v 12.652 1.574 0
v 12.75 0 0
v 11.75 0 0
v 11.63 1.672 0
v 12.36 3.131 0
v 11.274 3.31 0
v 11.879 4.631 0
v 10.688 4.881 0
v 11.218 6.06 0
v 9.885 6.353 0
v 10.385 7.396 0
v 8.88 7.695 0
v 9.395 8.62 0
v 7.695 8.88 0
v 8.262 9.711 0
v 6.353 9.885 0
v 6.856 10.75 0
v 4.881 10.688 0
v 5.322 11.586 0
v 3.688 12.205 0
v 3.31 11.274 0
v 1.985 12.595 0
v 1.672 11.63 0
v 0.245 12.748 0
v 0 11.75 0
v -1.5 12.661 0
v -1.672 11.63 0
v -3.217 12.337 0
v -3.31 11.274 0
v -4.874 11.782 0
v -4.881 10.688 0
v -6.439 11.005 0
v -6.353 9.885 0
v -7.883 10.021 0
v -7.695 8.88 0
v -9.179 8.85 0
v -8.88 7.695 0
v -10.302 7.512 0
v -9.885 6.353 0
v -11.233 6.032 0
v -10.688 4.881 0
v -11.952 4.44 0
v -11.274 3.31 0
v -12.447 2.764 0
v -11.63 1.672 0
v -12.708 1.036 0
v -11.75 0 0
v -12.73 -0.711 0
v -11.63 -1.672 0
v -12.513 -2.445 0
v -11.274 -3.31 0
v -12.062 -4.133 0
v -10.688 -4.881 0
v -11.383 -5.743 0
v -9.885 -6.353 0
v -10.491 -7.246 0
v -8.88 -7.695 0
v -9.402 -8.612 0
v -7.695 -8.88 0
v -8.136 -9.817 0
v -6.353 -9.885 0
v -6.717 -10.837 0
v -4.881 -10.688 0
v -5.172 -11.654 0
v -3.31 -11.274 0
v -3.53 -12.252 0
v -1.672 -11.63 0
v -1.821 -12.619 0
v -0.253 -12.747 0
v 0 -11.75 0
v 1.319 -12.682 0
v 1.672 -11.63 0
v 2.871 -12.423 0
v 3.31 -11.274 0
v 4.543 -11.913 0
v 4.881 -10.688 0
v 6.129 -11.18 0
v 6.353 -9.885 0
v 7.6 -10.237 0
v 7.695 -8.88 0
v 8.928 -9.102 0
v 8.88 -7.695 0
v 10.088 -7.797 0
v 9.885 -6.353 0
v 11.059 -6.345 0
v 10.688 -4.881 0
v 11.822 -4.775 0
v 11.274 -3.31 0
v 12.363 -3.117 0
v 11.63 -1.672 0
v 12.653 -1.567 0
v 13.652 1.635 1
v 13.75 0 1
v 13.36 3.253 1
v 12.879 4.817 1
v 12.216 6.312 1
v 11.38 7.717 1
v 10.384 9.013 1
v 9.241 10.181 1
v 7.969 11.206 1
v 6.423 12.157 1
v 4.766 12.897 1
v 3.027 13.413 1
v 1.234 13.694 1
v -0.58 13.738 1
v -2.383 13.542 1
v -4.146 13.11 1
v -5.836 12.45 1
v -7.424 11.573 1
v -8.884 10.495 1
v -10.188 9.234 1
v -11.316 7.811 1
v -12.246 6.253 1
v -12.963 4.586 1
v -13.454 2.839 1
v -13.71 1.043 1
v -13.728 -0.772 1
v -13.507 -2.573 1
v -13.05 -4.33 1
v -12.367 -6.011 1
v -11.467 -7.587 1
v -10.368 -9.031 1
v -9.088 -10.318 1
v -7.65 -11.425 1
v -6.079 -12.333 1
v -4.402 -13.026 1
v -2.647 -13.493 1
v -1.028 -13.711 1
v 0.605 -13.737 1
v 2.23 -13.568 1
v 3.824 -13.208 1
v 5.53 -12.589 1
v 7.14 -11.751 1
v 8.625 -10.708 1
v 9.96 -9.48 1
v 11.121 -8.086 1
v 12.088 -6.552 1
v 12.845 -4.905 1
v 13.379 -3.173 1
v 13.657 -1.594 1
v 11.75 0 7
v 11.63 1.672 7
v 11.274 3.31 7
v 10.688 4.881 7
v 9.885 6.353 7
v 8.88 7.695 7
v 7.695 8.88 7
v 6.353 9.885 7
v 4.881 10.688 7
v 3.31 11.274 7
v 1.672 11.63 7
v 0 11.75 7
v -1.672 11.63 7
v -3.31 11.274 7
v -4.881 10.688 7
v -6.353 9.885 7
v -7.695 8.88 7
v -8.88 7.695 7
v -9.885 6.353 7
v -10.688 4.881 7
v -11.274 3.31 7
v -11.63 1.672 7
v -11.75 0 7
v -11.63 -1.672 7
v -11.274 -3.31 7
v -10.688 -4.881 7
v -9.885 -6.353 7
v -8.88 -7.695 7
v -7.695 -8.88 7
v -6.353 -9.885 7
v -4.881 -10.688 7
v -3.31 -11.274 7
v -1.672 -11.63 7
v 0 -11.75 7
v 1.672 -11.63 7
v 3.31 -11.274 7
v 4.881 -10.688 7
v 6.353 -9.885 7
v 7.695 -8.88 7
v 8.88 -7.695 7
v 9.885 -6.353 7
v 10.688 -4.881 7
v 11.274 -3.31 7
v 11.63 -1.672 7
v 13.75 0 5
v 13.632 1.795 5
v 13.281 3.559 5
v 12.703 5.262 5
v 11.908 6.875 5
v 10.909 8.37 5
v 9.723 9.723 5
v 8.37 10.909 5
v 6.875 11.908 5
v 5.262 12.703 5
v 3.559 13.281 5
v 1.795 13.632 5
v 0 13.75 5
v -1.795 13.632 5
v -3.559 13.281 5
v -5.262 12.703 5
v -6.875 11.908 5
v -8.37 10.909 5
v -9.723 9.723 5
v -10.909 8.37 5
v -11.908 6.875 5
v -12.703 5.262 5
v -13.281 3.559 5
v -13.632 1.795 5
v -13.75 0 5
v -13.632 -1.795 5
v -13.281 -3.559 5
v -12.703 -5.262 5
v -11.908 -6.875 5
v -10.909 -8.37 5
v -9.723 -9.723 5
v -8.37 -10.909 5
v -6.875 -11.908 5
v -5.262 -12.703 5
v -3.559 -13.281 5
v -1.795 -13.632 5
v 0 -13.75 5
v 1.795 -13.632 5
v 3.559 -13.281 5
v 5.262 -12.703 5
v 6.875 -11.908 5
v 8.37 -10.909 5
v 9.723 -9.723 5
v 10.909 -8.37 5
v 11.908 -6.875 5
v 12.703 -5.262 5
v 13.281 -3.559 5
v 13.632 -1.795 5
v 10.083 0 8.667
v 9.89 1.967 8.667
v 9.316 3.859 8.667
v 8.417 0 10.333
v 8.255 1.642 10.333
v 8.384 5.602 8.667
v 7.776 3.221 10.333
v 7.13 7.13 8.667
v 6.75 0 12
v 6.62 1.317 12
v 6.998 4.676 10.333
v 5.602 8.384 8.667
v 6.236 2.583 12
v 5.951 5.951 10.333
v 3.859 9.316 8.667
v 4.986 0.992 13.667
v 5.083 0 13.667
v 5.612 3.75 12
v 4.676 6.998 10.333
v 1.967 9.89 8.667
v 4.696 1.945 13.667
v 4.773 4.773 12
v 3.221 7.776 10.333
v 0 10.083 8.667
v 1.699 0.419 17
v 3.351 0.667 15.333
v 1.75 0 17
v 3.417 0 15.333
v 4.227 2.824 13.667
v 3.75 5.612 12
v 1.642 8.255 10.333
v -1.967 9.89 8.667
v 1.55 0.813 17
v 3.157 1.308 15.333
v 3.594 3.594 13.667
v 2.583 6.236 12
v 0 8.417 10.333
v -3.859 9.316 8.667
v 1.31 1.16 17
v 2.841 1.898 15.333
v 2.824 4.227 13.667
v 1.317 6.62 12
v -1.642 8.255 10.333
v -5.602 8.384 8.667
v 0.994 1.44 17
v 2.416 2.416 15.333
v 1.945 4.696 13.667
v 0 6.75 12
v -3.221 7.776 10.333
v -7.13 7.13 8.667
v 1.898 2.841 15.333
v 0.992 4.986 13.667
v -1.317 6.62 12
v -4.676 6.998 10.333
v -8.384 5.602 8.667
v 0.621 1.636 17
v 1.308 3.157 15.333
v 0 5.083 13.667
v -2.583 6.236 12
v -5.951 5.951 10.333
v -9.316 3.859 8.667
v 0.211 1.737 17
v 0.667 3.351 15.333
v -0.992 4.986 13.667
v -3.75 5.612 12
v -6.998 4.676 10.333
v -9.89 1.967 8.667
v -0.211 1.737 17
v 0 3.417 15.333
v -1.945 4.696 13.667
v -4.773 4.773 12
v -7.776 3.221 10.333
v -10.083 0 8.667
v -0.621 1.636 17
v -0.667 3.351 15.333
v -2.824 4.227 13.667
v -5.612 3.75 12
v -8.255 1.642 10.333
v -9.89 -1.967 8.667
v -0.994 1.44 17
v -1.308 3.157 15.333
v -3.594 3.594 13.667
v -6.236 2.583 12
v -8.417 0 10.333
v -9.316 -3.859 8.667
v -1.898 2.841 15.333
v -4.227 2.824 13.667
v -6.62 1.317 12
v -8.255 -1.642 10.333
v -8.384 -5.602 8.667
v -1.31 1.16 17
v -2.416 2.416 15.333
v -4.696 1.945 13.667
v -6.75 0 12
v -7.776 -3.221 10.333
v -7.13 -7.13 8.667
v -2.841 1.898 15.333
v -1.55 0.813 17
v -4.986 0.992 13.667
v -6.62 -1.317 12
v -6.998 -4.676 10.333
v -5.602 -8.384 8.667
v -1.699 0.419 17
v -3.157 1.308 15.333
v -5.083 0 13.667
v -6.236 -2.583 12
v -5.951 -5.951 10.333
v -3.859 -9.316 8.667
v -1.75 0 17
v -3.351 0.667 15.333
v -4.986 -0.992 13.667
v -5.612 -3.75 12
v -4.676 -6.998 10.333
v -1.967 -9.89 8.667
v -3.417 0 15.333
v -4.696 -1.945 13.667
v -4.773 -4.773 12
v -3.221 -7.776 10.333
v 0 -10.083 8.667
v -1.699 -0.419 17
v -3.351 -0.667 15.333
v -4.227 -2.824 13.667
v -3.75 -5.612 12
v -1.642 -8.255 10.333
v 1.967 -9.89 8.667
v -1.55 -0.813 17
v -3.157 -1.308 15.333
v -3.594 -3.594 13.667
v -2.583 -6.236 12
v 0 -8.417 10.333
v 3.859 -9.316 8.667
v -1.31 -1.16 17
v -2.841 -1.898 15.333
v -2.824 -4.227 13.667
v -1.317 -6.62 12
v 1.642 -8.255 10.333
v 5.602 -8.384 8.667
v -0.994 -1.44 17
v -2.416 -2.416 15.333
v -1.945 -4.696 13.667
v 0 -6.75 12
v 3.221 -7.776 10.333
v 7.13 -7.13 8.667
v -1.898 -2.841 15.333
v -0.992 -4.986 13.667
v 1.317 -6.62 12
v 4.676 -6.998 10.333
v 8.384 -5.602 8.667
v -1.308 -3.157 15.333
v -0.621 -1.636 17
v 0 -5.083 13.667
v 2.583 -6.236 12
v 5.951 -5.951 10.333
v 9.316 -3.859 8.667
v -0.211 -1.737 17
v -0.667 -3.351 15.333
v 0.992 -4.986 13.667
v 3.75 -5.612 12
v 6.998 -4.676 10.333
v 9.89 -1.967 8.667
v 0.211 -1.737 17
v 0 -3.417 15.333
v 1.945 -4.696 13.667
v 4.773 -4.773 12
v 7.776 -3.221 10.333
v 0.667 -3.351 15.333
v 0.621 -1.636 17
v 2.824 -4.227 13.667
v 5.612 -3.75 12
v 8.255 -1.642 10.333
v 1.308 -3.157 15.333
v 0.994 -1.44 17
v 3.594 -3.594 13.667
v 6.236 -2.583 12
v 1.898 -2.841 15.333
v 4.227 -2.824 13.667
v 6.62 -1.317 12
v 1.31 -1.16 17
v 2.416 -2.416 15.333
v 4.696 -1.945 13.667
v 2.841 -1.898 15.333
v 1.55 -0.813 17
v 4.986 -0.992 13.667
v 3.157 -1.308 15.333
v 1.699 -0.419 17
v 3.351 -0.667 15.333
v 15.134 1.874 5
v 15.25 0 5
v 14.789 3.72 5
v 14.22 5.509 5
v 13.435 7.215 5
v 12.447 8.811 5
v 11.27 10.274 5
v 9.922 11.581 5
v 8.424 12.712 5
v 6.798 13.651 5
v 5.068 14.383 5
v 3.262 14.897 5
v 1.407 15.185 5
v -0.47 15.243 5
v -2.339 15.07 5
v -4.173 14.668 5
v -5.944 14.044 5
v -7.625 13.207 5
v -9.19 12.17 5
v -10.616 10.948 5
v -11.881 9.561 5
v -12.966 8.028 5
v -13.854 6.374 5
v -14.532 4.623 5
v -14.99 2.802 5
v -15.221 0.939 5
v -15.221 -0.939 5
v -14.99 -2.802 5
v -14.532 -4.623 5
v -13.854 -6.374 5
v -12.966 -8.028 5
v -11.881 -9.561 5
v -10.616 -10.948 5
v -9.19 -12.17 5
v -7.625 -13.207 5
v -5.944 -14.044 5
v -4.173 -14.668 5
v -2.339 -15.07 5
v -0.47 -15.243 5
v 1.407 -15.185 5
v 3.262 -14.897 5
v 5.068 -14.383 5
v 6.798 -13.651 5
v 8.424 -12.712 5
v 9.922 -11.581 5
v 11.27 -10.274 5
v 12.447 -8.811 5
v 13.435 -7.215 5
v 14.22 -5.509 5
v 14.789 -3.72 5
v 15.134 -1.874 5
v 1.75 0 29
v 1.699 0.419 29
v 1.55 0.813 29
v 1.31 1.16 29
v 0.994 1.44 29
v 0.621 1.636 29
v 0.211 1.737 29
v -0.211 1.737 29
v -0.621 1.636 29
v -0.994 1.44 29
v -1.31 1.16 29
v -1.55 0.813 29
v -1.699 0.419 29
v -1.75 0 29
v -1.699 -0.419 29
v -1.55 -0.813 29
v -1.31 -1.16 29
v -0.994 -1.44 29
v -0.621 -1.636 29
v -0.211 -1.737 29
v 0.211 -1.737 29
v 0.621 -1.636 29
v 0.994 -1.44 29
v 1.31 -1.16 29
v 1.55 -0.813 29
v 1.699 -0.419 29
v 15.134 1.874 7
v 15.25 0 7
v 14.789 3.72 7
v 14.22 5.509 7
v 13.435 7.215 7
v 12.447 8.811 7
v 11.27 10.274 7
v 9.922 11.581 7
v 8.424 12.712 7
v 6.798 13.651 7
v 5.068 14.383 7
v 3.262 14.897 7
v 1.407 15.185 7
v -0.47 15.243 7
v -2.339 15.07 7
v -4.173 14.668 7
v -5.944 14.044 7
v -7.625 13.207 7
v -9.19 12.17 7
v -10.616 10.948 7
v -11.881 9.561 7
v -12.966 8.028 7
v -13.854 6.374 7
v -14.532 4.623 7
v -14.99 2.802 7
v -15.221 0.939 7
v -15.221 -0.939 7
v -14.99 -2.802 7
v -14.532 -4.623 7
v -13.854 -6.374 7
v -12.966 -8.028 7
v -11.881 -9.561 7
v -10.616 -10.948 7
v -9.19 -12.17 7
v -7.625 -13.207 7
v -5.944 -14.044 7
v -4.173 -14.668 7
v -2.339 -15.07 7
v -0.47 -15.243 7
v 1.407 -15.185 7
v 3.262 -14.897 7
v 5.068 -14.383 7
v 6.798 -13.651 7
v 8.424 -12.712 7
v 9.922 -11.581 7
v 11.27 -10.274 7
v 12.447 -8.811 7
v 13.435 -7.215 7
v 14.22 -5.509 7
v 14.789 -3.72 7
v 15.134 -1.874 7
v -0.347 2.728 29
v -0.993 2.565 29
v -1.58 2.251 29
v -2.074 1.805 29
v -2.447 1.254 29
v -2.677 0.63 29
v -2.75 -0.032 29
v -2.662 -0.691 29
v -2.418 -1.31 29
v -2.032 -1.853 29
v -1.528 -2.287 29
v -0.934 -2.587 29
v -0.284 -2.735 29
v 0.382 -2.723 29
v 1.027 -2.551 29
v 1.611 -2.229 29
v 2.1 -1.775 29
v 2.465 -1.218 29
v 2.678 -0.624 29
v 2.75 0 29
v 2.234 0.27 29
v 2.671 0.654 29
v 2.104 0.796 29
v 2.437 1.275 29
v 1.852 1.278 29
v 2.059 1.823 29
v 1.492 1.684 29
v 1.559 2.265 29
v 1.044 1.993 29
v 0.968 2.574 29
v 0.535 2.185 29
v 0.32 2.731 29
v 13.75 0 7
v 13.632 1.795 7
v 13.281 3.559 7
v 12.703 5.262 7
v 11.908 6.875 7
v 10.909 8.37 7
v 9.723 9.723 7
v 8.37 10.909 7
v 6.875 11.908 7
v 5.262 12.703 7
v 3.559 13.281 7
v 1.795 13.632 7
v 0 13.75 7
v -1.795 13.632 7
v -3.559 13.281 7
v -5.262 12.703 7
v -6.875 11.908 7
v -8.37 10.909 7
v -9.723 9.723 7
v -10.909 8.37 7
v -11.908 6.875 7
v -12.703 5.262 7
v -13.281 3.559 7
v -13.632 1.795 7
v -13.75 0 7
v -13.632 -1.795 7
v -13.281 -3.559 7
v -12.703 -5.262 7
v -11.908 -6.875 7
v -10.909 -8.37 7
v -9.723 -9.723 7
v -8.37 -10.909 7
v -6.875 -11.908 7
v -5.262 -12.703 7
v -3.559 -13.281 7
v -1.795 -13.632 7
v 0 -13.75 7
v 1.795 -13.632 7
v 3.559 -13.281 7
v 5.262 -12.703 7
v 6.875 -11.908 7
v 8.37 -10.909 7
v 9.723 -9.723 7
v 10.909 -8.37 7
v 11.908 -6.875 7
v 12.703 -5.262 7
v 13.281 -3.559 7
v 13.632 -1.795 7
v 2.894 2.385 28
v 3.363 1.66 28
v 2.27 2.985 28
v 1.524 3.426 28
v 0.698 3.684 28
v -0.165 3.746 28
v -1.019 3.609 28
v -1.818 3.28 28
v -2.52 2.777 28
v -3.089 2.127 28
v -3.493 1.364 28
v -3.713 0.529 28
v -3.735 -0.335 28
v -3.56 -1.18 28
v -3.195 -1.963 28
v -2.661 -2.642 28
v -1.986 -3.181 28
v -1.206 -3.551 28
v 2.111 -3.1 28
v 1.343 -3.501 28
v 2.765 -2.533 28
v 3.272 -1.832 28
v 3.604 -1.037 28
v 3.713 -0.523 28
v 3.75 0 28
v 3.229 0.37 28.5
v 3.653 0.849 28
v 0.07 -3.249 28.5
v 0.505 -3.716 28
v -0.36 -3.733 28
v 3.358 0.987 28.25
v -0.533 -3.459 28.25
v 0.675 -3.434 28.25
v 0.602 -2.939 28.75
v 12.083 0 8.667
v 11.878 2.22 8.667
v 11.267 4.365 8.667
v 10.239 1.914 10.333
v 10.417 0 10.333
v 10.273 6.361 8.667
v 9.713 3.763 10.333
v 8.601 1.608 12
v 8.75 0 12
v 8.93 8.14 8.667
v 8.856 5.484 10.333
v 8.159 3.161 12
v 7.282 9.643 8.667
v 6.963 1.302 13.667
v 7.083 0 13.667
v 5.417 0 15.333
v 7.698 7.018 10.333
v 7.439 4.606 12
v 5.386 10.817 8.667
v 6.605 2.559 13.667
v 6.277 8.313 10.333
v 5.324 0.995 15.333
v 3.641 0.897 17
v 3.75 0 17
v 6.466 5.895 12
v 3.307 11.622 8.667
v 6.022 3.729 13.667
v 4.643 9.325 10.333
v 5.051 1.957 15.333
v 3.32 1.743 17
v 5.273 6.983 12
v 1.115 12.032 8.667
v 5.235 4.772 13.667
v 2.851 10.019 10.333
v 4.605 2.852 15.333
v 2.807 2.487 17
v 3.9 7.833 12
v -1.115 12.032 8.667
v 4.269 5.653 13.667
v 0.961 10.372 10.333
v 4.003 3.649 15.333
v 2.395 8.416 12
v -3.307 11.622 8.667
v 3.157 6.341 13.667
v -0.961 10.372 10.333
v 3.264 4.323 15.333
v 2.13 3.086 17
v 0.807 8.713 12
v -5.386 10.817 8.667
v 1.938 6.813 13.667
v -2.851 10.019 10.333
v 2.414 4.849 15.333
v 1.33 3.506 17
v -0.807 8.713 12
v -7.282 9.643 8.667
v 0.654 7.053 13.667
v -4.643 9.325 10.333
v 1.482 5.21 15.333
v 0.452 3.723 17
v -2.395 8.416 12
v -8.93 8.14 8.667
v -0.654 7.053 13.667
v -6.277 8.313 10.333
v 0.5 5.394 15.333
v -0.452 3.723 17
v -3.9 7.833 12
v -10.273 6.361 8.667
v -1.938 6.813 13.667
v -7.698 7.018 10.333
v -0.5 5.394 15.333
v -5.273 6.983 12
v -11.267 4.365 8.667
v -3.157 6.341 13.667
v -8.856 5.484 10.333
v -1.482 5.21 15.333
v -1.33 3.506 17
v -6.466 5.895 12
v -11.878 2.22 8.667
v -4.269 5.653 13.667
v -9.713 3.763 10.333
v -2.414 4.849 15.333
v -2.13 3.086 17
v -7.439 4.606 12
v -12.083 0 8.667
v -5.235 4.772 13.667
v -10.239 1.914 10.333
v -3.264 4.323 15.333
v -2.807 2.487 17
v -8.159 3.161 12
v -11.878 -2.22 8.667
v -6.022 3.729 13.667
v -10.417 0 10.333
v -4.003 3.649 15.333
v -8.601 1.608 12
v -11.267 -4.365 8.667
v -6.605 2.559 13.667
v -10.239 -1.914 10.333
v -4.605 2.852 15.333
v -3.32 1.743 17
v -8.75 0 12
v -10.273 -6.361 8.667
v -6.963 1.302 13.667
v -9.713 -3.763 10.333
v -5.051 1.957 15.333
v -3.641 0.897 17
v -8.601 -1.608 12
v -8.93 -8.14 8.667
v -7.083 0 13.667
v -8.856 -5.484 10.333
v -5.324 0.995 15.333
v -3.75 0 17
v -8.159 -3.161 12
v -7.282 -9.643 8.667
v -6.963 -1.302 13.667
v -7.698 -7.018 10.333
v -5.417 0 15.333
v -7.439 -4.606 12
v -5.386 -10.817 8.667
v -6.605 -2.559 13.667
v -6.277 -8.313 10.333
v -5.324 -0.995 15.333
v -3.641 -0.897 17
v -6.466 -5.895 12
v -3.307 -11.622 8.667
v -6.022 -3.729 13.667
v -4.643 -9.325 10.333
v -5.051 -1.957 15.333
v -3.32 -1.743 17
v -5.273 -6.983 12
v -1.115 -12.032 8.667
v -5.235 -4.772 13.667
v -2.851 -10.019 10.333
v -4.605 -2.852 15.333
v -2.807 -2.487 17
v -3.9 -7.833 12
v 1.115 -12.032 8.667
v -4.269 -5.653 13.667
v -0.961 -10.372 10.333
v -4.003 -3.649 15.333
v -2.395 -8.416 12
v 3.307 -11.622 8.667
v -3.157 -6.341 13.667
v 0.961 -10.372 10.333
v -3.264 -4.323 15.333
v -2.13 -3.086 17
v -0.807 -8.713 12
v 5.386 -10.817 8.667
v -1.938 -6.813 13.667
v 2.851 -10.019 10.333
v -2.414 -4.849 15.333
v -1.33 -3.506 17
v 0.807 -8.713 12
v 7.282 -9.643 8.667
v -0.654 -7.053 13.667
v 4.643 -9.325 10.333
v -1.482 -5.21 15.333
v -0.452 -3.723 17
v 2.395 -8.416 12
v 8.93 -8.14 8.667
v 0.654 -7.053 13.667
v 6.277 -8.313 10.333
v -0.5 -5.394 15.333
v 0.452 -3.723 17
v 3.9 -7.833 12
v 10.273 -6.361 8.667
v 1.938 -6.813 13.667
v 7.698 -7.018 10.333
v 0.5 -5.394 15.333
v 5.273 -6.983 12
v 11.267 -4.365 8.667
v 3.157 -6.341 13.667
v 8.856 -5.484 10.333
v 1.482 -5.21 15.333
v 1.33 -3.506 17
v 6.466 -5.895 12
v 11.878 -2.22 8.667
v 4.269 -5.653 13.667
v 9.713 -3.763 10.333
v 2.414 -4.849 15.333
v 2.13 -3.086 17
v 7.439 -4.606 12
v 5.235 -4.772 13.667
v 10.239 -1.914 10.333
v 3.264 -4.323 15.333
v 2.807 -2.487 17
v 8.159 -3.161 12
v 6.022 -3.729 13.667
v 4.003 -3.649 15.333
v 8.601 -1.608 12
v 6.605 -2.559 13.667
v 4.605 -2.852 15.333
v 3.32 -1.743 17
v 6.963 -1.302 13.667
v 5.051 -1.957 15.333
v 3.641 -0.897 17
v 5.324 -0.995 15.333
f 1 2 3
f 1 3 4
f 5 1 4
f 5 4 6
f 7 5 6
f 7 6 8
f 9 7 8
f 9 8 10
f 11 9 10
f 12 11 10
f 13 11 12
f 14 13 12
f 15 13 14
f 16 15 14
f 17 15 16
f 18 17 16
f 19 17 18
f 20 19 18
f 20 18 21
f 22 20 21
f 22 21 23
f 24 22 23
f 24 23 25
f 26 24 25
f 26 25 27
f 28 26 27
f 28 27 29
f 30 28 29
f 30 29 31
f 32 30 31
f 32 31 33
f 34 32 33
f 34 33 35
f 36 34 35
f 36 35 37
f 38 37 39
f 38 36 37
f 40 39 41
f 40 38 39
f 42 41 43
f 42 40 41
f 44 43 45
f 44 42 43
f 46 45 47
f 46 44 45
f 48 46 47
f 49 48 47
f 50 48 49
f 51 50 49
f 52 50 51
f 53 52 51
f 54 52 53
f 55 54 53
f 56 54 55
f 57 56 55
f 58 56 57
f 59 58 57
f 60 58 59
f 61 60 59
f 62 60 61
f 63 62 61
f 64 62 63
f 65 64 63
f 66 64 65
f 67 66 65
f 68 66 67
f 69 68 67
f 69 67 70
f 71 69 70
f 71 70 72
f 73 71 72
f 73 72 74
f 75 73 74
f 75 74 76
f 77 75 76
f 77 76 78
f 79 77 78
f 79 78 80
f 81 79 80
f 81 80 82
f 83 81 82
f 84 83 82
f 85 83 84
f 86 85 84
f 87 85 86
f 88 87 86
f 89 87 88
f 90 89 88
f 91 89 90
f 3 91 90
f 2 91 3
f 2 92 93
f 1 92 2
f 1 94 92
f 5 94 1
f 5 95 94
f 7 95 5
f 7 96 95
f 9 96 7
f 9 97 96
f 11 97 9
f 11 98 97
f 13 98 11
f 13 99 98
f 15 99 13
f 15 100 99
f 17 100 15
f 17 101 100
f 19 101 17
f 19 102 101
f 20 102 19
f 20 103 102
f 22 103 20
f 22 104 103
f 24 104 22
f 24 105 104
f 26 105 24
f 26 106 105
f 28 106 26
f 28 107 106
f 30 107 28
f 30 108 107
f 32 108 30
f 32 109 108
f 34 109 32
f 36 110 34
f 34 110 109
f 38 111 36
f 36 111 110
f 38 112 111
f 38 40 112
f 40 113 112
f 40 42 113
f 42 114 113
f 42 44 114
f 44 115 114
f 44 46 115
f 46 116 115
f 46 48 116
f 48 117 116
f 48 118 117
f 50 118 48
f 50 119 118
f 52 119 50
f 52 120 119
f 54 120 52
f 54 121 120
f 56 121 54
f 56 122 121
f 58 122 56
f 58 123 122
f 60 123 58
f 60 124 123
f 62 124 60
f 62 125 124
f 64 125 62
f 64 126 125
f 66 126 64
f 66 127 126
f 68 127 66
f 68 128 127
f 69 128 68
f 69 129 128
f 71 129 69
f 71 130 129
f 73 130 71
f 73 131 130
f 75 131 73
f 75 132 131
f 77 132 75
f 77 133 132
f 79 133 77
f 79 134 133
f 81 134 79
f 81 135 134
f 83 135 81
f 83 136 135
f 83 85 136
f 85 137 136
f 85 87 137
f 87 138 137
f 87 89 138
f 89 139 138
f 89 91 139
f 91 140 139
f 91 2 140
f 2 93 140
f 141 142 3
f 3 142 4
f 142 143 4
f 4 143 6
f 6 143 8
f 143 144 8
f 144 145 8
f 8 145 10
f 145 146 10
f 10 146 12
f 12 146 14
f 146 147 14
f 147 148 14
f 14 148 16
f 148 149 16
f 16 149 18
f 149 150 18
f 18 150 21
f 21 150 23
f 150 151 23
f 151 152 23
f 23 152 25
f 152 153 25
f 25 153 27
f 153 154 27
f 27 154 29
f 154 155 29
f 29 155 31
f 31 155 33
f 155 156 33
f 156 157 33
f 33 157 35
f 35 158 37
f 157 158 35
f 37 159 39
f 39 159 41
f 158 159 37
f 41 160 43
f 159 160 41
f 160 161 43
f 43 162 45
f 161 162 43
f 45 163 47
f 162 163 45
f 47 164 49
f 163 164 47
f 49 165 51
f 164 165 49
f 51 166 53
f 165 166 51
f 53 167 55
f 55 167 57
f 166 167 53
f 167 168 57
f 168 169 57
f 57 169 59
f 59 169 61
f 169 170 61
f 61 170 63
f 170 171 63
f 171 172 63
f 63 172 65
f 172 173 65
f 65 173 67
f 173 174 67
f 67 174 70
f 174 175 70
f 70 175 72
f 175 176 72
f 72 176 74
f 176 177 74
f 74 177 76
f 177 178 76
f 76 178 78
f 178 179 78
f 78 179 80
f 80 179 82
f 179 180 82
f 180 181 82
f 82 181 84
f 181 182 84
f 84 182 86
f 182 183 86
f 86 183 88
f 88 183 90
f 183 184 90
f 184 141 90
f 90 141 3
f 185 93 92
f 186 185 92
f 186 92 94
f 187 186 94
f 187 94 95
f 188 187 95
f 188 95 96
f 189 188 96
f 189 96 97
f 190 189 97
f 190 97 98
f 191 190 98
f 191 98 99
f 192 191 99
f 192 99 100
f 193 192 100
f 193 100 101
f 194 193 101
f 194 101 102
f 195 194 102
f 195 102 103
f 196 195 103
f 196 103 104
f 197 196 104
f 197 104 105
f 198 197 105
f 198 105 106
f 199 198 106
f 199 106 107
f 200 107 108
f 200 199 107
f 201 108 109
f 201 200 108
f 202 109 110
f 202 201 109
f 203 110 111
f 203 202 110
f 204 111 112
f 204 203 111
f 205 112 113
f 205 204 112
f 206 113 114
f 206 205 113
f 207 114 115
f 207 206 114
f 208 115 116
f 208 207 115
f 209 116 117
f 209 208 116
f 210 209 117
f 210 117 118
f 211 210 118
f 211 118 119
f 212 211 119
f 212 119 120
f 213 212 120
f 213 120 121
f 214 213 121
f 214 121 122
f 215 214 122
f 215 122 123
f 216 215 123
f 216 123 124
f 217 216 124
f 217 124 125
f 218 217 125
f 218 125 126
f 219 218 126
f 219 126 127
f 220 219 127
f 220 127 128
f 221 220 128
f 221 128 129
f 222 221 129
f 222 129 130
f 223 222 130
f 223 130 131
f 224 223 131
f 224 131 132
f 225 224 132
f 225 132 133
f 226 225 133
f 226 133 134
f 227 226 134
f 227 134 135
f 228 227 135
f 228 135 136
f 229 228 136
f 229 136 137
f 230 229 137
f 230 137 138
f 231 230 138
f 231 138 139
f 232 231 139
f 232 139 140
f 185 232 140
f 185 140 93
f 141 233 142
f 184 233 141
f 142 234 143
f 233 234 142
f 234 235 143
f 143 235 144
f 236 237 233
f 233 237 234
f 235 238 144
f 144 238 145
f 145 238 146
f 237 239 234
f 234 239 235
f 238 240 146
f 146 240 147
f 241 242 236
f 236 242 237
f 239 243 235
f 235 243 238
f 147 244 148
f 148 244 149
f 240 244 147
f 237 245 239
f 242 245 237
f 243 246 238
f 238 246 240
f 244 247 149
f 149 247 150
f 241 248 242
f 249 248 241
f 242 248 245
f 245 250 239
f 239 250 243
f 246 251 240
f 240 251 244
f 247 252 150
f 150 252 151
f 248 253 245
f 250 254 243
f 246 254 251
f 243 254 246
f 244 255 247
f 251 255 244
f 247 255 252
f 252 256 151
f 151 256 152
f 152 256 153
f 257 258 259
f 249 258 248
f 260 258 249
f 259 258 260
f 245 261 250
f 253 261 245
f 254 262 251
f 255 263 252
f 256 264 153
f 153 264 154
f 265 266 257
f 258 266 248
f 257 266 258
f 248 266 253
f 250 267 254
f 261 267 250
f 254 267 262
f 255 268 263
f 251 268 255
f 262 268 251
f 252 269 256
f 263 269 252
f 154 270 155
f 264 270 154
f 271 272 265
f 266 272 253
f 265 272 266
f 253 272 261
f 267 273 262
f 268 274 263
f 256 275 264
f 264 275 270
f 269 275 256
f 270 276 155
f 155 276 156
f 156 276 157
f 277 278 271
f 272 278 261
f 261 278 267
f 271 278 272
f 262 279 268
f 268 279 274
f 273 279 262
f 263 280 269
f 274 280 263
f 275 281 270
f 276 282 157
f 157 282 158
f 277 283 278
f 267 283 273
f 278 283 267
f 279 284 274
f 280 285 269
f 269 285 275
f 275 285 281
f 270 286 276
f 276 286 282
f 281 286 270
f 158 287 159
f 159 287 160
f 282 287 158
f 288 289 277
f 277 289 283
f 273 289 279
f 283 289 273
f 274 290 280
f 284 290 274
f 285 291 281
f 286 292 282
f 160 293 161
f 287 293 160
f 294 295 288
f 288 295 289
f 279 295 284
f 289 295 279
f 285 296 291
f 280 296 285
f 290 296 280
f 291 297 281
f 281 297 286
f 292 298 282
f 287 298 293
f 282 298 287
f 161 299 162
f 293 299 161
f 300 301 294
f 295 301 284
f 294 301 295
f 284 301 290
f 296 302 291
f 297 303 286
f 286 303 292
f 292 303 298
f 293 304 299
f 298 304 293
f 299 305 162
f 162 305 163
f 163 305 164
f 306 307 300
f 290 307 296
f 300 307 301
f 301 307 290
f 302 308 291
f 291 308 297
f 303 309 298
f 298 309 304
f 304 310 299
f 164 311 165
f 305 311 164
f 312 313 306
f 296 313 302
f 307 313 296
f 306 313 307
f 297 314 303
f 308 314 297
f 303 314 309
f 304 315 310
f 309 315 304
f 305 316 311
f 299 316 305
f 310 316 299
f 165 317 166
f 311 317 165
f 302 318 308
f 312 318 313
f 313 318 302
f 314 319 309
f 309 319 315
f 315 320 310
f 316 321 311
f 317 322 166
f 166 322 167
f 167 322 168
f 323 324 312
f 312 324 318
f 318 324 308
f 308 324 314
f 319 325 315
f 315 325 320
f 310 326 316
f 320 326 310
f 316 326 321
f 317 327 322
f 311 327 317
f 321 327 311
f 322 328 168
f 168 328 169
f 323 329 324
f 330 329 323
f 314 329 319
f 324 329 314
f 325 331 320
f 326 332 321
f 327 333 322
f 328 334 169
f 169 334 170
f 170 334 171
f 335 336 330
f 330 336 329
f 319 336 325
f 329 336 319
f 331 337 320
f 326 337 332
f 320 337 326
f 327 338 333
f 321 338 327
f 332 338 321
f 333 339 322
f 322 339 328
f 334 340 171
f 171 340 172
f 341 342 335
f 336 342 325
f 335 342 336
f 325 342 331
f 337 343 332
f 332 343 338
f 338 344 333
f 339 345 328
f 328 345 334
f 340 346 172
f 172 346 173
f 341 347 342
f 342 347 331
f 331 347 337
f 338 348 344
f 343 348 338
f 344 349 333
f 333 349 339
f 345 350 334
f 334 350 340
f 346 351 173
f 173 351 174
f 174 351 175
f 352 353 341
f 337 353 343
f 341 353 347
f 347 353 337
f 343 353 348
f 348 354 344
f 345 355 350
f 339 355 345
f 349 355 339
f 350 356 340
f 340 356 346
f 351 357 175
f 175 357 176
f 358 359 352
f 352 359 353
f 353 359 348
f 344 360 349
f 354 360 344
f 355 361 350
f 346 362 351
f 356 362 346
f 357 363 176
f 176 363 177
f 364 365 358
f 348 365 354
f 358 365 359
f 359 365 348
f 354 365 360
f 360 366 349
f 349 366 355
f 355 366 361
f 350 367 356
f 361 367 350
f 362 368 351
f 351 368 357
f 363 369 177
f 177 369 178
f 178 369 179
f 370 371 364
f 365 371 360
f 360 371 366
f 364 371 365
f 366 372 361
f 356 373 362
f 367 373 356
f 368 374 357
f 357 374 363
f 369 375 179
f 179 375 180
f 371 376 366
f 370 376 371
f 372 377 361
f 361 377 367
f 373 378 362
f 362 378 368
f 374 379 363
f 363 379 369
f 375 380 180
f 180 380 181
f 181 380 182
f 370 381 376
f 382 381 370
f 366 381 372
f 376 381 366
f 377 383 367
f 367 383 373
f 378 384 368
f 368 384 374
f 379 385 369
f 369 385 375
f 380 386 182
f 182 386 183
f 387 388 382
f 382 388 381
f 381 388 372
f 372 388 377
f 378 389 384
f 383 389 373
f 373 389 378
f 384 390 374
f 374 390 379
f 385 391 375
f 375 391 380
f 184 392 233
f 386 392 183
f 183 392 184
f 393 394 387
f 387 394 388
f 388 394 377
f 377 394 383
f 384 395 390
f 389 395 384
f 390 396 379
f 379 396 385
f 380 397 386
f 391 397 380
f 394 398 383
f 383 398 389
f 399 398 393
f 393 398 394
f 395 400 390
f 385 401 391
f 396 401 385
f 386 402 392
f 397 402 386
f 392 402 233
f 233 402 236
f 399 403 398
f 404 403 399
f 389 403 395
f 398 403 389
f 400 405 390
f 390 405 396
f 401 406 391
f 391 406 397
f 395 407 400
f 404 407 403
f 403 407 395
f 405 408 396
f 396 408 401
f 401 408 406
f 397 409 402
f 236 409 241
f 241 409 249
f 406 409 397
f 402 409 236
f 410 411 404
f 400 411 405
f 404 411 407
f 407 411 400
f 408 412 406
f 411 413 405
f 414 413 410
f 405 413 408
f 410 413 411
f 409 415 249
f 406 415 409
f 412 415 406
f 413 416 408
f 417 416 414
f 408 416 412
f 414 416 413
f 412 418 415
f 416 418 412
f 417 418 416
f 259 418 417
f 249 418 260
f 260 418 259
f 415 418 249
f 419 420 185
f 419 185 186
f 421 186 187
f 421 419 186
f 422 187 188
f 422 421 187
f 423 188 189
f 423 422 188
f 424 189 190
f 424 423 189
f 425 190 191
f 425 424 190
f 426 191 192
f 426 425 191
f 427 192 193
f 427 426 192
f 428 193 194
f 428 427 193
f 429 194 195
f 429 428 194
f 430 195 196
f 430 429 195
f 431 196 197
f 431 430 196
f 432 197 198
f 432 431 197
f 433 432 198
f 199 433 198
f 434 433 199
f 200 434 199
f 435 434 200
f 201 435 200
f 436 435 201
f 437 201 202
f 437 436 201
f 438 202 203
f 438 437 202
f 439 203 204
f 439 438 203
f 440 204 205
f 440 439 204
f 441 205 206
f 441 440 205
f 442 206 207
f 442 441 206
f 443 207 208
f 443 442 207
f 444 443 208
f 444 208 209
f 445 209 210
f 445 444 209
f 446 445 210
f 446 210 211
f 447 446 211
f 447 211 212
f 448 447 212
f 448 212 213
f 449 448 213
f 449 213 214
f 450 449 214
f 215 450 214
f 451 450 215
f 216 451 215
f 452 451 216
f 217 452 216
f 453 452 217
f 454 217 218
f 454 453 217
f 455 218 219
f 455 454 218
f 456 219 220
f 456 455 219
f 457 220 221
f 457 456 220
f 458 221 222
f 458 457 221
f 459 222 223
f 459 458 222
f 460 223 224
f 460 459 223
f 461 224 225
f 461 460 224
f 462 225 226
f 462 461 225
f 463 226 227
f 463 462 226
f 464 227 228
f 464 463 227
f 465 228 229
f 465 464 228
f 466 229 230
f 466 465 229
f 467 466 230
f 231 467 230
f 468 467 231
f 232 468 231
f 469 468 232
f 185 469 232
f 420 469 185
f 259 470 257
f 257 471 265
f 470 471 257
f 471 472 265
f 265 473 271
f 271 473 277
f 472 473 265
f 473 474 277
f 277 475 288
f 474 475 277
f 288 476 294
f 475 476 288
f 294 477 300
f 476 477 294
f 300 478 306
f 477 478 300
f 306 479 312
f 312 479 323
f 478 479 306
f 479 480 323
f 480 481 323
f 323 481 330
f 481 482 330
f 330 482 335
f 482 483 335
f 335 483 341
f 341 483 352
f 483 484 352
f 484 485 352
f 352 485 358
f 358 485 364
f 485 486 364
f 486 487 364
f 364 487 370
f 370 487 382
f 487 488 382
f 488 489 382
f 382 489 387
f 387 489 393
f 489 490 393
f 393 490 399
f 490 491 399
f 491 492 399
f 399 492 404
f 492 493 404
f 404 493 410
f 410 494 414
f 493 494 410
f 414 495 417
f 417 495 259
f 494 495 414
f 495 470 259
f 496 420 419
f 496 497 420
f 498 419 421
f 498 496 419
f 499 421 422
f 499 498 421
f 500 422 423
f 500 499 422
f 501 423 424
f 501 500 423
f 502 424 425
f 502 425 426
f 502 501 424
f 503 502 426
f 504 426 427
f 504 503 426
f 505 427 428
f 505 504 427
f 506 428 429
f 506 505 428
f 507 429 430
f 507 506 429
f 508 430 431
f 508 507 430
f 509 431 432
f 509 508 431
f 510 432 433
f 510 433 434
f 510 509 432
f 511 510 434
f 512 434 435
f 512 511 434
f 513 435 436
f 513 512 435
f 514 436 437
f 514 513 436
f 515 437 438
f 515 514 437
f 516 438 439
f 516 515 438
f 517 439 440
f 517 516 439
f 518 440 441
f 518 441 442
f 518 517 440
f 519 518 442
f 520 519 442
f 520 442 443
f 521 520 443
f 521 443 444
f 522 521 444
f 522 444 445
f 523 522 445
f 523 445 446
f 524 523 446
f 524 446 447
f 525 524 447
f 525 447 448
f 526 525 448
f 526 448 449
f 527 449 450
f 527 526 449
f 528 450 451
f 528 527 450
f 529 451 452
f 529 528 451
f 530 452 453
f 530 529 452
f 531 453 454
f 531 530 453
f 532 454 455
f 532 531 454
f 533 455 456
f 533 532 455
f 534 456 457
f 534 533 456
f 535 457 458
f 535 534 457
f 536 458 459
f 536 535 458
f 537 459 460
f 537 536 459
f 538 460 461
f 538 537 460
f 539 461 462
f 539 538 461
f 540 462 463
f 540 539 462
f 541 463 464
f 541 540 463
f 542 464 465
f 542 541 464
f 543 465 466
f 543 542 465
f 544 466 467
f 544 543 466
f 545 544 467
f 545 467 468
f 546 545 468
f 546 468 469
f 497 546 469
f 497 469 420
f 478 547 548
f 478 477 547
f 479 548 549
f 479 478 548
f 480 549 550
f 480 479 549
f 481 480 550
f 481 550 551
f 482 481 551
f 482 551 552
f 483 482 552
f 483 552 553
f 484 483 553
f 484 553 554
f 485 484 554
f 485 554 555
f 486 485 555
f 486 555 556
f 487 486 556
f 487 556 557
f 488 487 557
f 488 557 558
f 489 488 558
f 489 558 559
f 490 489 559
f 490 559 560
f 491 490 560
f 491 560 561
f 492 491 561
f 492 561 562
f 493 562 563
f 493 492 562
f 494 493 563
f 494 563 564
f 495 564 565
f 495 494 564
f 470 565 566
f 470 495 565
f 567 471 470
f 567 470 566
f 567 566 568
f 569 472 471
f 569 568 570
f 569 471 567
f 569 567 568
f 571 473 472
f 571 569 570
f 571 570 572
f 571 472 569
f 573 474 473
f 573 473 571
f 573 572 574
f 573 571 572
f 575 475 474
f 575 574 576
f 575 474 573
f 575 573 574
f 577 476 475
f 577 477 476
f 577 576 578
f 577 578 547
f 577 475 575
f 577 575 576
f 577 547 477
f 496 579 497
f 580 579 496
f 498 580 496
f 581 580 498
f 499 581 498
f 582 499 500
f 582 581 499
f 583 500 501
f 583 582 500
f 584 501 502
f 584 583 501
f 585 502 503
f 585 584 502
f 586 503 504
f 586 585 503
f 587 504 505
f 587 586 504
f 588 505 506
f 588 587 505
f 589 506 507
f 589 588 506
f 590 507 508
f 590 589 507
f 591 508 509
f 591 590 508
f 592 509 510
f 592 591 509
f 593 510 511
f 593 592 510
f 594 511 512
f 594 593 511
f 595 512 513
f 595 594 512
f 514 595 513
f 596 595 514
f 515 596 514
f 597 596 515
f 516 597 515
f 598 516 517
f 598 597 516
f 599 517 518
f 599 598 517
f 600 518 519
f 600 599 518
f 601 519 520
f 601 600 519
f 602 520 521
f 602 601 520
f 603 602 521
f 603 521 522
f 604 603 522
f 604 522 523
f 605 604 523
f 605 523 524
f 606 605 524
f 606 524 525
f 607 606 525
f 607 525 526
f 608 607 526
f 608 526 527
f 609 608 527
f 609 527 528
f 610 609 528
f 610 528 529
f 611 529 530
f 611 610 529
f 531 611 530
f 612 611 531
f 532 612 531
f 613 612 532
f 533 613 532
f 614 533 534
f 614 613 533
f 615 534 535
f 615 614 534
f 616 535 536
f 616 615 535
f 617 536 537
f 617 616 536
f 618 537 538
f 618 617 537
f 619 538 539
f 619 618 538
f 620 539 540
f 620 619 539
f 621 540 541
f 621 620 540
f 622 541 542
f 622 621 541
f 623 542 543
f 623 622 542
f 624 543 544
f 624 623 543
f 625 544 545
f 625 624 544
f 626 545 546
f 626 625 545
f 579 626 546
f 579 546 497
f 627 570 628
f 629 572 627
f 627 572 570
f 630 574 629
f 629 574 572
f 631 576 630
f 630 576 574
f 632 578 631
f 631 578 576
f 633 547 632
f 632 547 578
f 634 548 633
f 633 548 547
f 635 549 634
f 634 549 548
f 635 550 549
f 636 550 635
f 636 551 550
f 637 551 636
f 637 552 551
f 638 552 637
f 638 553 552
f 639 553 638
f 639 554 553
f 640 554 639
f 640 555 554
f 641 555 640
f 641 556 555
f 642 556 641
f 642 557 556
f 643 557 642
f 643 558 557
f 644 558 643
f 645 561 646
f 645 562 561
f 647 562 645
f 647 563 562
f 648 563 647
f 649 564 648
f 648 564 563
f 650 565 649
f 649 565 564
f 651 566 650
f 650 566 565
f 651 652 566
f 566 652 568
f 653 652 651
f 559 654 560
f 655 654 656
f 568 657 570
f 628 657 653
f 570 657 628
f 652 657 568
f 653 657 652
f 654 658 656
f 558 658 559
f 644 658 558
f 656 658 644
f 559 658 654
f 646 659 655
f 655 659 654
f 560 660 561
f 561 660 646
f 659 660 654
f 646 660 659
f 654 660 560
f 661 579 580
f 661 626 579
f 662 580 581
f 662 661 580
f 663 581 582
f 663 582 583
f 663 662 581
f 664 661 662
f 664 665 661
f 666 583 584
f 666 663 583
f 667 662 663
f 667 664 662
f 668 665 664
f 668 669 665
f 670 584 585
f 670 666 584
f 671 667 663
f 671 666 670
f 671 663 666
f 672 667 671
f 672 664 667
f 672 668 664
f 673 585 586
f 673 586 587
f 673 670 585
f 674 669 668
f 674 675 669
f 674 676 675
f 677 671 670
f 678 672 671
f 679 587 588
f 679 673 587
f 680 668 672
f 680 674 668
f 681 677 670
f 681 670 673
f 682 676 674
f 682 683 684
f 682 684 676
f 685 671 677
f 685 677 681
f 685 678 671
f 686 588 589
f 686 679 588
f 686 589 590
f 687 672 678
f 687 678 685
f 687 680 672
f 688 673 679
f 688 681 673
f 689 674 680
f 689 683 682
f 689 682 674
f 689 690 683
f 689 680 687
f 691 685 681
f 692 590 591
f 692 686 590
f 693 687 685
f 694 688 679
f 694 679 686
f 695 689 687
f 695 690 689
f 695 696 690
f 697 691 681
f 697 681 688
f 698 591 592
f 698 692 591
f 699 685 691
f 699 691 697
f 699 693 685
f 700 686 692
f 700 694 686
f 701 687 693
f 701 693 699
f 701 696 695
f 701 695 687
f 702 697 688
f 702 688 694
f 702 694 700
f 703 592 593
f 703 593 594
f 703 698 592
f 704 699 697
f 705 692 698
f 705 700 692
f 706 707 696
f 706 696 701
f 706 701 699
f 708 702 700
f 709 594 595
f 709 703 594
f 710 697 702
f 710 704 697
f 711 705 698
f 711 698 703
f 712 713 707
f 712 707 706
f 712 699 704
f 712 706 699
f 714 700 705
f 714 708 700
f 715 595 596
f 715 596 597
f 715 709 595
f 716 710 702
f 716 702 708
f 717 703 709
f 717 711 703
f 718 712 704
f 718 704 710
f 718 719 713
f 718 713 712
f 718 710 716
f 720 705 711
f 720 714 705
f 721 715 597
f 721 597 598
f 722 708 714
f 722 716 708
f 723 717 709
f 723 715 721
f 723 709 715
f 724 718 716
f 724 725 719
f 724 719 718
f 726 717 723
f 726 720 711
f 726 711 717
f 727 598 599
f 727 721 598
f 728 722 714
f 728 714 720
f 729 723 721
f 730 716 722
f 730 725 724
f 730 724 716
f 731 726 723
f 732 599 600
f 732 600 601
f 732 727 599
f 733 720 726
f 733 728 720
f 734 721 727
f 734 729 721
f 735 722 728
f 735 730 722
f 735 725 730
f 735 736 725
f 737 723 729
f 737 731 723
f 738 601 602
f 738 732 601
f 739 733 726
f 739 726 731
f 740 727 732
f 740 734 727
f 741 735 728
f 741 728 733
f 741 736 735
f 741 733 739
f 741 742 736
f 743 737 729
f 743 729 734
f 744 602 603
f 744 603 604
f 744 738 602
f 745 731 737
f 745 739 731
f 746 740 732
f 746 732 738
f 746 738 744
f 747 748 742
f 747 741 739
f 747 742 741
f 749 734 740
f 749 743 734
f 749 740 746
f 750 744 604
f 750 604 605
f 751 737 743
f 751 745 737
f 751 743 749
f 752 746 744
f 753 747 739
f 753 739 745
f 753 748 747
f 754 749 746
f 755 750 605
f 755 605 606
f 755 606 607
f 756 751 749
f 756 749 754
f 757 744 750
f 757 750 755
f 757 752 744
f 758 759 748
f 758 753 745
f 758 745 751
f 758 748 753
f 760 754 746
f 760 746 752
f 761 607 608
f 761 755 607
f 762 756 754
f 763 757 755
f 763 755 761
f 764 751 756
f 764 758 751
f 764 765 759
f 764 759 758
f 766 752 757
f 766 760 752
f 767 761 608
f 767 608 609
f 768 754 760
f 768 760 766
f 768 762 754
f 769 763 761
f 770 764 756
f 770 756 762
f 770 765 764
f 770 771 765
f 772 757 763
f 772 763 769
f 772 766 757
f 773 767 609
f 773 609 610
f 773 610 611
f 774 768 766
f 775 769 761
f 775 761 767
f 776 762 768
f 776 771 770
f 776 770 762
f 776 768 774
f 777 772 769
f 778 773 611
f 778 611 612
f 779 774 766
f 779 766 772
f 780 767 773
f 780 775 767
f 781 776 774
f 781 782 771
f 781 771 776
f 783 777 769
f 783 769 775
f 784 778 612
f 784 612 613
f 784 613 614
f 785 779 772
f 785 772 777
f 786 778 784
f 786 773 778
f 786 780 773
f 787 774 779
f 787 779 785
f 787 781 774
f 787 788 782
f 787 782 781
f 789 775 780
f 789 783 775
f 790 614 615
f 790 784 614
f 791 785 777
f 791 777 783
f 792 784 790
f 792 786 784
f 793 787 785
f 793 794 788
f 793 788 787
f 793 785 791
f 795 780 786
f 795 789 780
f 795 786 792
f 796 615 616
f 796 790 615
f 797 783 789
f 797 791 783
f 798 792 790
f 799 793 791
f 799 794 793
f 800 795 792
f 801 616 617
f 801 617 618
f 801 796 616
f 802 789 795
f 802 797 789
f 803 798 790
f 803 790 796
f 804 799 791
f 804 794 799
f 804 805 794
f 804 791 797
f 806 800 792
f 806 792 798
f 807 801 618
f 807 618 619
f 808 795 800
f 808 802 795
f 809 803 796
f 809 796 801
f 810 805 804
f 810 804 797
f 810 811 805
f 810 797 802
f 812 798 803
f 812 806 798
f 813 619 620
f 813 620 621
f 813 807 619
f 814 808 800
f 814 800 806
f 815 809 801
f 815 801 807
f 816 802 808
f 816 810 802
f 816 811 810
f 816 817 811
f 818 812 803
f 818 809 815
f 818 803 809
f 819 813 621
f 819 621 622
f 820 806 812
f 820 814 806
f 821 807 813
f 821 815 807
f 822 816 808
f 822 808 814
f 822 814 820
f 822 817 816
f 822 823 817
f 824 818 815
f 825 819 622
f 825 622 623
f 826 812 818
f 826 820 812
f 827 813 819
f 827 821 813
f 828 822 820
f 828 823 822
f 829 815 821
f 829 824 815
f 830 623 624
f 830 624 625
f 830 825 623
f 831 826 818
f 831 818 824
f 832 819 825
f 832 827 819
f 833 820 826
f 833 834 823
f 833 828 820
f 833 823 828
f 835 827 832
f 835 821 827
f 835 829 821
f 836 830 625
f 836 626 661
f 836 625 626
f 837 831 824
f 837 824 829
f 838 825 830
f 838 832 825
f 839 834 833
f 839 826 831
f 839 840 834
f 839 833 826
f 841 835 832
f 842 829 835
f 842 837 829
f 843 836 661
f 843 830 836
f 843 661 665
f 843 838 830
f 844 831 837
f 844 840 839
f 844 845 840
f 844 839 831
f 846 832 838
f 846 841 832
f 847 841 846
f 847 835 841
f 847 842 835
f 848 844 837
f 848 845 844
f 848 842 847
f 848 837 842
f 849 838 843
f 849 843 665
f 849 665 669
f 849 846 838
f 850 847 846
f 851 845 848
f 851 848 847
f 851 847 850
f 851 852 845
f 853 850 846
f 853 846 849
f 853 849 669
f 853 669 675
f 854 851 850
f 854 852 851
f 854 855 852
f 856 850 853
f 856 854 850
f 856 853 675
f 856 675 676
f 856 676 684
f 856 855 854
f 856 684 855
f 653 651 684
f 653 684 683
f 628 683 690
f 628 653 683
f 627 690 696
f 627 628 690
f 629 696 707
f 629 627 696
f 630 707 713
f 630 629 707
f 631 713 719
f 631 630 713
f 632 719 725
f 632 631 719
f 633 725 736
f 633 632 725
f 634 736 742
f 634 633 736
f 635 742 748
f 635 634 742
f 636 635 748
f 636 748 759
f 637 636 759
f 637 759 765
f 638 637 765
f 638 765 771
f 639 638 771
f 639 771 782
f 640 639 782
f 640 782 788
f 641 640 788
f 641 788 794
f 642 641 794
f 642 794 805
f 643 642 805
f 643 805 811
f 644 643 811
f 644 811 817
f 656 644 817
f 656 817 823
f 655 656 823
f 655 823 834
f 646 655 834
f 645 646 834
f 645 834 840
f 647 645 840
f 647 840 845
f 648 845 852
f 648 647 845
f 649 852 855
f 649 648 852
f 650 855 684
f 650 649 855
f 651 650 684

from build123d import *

# Parameters (mm, degrees)
CHAMFER_SIZE = 1


with BuildPart() as part:
    # AdditivePipe: sweep along a path in Sketch001
    with BuildLine(Plane.XY) as additivepipe_path:
        CenterArc((0, 0), 15, 0, 360)
    # Sketch → AdditivePipe (sweep)
    with BuildSketch(Plane.XZ):
        Polygon((1.75, 29), (1.75, 17), (11.75, 7), (11.75, 0), (13.75, 0), (13.75, 5), (15.25, 5), (15.25, 7), (13.75, 7), (3.75, 17), (3.75, 29), align=None)
    sweep(path=additivepipe_path.line)

    # Chamfer
    chamfer_edges = [part.edges().sort_by_distance(p)[0] for p in [
        (-3.75, 0, 29),
        (-13.75, 0, 0),
    ]]
    chamfer(chamfer_edges, length=CHAMFER_SIZE)


solid = part.part
